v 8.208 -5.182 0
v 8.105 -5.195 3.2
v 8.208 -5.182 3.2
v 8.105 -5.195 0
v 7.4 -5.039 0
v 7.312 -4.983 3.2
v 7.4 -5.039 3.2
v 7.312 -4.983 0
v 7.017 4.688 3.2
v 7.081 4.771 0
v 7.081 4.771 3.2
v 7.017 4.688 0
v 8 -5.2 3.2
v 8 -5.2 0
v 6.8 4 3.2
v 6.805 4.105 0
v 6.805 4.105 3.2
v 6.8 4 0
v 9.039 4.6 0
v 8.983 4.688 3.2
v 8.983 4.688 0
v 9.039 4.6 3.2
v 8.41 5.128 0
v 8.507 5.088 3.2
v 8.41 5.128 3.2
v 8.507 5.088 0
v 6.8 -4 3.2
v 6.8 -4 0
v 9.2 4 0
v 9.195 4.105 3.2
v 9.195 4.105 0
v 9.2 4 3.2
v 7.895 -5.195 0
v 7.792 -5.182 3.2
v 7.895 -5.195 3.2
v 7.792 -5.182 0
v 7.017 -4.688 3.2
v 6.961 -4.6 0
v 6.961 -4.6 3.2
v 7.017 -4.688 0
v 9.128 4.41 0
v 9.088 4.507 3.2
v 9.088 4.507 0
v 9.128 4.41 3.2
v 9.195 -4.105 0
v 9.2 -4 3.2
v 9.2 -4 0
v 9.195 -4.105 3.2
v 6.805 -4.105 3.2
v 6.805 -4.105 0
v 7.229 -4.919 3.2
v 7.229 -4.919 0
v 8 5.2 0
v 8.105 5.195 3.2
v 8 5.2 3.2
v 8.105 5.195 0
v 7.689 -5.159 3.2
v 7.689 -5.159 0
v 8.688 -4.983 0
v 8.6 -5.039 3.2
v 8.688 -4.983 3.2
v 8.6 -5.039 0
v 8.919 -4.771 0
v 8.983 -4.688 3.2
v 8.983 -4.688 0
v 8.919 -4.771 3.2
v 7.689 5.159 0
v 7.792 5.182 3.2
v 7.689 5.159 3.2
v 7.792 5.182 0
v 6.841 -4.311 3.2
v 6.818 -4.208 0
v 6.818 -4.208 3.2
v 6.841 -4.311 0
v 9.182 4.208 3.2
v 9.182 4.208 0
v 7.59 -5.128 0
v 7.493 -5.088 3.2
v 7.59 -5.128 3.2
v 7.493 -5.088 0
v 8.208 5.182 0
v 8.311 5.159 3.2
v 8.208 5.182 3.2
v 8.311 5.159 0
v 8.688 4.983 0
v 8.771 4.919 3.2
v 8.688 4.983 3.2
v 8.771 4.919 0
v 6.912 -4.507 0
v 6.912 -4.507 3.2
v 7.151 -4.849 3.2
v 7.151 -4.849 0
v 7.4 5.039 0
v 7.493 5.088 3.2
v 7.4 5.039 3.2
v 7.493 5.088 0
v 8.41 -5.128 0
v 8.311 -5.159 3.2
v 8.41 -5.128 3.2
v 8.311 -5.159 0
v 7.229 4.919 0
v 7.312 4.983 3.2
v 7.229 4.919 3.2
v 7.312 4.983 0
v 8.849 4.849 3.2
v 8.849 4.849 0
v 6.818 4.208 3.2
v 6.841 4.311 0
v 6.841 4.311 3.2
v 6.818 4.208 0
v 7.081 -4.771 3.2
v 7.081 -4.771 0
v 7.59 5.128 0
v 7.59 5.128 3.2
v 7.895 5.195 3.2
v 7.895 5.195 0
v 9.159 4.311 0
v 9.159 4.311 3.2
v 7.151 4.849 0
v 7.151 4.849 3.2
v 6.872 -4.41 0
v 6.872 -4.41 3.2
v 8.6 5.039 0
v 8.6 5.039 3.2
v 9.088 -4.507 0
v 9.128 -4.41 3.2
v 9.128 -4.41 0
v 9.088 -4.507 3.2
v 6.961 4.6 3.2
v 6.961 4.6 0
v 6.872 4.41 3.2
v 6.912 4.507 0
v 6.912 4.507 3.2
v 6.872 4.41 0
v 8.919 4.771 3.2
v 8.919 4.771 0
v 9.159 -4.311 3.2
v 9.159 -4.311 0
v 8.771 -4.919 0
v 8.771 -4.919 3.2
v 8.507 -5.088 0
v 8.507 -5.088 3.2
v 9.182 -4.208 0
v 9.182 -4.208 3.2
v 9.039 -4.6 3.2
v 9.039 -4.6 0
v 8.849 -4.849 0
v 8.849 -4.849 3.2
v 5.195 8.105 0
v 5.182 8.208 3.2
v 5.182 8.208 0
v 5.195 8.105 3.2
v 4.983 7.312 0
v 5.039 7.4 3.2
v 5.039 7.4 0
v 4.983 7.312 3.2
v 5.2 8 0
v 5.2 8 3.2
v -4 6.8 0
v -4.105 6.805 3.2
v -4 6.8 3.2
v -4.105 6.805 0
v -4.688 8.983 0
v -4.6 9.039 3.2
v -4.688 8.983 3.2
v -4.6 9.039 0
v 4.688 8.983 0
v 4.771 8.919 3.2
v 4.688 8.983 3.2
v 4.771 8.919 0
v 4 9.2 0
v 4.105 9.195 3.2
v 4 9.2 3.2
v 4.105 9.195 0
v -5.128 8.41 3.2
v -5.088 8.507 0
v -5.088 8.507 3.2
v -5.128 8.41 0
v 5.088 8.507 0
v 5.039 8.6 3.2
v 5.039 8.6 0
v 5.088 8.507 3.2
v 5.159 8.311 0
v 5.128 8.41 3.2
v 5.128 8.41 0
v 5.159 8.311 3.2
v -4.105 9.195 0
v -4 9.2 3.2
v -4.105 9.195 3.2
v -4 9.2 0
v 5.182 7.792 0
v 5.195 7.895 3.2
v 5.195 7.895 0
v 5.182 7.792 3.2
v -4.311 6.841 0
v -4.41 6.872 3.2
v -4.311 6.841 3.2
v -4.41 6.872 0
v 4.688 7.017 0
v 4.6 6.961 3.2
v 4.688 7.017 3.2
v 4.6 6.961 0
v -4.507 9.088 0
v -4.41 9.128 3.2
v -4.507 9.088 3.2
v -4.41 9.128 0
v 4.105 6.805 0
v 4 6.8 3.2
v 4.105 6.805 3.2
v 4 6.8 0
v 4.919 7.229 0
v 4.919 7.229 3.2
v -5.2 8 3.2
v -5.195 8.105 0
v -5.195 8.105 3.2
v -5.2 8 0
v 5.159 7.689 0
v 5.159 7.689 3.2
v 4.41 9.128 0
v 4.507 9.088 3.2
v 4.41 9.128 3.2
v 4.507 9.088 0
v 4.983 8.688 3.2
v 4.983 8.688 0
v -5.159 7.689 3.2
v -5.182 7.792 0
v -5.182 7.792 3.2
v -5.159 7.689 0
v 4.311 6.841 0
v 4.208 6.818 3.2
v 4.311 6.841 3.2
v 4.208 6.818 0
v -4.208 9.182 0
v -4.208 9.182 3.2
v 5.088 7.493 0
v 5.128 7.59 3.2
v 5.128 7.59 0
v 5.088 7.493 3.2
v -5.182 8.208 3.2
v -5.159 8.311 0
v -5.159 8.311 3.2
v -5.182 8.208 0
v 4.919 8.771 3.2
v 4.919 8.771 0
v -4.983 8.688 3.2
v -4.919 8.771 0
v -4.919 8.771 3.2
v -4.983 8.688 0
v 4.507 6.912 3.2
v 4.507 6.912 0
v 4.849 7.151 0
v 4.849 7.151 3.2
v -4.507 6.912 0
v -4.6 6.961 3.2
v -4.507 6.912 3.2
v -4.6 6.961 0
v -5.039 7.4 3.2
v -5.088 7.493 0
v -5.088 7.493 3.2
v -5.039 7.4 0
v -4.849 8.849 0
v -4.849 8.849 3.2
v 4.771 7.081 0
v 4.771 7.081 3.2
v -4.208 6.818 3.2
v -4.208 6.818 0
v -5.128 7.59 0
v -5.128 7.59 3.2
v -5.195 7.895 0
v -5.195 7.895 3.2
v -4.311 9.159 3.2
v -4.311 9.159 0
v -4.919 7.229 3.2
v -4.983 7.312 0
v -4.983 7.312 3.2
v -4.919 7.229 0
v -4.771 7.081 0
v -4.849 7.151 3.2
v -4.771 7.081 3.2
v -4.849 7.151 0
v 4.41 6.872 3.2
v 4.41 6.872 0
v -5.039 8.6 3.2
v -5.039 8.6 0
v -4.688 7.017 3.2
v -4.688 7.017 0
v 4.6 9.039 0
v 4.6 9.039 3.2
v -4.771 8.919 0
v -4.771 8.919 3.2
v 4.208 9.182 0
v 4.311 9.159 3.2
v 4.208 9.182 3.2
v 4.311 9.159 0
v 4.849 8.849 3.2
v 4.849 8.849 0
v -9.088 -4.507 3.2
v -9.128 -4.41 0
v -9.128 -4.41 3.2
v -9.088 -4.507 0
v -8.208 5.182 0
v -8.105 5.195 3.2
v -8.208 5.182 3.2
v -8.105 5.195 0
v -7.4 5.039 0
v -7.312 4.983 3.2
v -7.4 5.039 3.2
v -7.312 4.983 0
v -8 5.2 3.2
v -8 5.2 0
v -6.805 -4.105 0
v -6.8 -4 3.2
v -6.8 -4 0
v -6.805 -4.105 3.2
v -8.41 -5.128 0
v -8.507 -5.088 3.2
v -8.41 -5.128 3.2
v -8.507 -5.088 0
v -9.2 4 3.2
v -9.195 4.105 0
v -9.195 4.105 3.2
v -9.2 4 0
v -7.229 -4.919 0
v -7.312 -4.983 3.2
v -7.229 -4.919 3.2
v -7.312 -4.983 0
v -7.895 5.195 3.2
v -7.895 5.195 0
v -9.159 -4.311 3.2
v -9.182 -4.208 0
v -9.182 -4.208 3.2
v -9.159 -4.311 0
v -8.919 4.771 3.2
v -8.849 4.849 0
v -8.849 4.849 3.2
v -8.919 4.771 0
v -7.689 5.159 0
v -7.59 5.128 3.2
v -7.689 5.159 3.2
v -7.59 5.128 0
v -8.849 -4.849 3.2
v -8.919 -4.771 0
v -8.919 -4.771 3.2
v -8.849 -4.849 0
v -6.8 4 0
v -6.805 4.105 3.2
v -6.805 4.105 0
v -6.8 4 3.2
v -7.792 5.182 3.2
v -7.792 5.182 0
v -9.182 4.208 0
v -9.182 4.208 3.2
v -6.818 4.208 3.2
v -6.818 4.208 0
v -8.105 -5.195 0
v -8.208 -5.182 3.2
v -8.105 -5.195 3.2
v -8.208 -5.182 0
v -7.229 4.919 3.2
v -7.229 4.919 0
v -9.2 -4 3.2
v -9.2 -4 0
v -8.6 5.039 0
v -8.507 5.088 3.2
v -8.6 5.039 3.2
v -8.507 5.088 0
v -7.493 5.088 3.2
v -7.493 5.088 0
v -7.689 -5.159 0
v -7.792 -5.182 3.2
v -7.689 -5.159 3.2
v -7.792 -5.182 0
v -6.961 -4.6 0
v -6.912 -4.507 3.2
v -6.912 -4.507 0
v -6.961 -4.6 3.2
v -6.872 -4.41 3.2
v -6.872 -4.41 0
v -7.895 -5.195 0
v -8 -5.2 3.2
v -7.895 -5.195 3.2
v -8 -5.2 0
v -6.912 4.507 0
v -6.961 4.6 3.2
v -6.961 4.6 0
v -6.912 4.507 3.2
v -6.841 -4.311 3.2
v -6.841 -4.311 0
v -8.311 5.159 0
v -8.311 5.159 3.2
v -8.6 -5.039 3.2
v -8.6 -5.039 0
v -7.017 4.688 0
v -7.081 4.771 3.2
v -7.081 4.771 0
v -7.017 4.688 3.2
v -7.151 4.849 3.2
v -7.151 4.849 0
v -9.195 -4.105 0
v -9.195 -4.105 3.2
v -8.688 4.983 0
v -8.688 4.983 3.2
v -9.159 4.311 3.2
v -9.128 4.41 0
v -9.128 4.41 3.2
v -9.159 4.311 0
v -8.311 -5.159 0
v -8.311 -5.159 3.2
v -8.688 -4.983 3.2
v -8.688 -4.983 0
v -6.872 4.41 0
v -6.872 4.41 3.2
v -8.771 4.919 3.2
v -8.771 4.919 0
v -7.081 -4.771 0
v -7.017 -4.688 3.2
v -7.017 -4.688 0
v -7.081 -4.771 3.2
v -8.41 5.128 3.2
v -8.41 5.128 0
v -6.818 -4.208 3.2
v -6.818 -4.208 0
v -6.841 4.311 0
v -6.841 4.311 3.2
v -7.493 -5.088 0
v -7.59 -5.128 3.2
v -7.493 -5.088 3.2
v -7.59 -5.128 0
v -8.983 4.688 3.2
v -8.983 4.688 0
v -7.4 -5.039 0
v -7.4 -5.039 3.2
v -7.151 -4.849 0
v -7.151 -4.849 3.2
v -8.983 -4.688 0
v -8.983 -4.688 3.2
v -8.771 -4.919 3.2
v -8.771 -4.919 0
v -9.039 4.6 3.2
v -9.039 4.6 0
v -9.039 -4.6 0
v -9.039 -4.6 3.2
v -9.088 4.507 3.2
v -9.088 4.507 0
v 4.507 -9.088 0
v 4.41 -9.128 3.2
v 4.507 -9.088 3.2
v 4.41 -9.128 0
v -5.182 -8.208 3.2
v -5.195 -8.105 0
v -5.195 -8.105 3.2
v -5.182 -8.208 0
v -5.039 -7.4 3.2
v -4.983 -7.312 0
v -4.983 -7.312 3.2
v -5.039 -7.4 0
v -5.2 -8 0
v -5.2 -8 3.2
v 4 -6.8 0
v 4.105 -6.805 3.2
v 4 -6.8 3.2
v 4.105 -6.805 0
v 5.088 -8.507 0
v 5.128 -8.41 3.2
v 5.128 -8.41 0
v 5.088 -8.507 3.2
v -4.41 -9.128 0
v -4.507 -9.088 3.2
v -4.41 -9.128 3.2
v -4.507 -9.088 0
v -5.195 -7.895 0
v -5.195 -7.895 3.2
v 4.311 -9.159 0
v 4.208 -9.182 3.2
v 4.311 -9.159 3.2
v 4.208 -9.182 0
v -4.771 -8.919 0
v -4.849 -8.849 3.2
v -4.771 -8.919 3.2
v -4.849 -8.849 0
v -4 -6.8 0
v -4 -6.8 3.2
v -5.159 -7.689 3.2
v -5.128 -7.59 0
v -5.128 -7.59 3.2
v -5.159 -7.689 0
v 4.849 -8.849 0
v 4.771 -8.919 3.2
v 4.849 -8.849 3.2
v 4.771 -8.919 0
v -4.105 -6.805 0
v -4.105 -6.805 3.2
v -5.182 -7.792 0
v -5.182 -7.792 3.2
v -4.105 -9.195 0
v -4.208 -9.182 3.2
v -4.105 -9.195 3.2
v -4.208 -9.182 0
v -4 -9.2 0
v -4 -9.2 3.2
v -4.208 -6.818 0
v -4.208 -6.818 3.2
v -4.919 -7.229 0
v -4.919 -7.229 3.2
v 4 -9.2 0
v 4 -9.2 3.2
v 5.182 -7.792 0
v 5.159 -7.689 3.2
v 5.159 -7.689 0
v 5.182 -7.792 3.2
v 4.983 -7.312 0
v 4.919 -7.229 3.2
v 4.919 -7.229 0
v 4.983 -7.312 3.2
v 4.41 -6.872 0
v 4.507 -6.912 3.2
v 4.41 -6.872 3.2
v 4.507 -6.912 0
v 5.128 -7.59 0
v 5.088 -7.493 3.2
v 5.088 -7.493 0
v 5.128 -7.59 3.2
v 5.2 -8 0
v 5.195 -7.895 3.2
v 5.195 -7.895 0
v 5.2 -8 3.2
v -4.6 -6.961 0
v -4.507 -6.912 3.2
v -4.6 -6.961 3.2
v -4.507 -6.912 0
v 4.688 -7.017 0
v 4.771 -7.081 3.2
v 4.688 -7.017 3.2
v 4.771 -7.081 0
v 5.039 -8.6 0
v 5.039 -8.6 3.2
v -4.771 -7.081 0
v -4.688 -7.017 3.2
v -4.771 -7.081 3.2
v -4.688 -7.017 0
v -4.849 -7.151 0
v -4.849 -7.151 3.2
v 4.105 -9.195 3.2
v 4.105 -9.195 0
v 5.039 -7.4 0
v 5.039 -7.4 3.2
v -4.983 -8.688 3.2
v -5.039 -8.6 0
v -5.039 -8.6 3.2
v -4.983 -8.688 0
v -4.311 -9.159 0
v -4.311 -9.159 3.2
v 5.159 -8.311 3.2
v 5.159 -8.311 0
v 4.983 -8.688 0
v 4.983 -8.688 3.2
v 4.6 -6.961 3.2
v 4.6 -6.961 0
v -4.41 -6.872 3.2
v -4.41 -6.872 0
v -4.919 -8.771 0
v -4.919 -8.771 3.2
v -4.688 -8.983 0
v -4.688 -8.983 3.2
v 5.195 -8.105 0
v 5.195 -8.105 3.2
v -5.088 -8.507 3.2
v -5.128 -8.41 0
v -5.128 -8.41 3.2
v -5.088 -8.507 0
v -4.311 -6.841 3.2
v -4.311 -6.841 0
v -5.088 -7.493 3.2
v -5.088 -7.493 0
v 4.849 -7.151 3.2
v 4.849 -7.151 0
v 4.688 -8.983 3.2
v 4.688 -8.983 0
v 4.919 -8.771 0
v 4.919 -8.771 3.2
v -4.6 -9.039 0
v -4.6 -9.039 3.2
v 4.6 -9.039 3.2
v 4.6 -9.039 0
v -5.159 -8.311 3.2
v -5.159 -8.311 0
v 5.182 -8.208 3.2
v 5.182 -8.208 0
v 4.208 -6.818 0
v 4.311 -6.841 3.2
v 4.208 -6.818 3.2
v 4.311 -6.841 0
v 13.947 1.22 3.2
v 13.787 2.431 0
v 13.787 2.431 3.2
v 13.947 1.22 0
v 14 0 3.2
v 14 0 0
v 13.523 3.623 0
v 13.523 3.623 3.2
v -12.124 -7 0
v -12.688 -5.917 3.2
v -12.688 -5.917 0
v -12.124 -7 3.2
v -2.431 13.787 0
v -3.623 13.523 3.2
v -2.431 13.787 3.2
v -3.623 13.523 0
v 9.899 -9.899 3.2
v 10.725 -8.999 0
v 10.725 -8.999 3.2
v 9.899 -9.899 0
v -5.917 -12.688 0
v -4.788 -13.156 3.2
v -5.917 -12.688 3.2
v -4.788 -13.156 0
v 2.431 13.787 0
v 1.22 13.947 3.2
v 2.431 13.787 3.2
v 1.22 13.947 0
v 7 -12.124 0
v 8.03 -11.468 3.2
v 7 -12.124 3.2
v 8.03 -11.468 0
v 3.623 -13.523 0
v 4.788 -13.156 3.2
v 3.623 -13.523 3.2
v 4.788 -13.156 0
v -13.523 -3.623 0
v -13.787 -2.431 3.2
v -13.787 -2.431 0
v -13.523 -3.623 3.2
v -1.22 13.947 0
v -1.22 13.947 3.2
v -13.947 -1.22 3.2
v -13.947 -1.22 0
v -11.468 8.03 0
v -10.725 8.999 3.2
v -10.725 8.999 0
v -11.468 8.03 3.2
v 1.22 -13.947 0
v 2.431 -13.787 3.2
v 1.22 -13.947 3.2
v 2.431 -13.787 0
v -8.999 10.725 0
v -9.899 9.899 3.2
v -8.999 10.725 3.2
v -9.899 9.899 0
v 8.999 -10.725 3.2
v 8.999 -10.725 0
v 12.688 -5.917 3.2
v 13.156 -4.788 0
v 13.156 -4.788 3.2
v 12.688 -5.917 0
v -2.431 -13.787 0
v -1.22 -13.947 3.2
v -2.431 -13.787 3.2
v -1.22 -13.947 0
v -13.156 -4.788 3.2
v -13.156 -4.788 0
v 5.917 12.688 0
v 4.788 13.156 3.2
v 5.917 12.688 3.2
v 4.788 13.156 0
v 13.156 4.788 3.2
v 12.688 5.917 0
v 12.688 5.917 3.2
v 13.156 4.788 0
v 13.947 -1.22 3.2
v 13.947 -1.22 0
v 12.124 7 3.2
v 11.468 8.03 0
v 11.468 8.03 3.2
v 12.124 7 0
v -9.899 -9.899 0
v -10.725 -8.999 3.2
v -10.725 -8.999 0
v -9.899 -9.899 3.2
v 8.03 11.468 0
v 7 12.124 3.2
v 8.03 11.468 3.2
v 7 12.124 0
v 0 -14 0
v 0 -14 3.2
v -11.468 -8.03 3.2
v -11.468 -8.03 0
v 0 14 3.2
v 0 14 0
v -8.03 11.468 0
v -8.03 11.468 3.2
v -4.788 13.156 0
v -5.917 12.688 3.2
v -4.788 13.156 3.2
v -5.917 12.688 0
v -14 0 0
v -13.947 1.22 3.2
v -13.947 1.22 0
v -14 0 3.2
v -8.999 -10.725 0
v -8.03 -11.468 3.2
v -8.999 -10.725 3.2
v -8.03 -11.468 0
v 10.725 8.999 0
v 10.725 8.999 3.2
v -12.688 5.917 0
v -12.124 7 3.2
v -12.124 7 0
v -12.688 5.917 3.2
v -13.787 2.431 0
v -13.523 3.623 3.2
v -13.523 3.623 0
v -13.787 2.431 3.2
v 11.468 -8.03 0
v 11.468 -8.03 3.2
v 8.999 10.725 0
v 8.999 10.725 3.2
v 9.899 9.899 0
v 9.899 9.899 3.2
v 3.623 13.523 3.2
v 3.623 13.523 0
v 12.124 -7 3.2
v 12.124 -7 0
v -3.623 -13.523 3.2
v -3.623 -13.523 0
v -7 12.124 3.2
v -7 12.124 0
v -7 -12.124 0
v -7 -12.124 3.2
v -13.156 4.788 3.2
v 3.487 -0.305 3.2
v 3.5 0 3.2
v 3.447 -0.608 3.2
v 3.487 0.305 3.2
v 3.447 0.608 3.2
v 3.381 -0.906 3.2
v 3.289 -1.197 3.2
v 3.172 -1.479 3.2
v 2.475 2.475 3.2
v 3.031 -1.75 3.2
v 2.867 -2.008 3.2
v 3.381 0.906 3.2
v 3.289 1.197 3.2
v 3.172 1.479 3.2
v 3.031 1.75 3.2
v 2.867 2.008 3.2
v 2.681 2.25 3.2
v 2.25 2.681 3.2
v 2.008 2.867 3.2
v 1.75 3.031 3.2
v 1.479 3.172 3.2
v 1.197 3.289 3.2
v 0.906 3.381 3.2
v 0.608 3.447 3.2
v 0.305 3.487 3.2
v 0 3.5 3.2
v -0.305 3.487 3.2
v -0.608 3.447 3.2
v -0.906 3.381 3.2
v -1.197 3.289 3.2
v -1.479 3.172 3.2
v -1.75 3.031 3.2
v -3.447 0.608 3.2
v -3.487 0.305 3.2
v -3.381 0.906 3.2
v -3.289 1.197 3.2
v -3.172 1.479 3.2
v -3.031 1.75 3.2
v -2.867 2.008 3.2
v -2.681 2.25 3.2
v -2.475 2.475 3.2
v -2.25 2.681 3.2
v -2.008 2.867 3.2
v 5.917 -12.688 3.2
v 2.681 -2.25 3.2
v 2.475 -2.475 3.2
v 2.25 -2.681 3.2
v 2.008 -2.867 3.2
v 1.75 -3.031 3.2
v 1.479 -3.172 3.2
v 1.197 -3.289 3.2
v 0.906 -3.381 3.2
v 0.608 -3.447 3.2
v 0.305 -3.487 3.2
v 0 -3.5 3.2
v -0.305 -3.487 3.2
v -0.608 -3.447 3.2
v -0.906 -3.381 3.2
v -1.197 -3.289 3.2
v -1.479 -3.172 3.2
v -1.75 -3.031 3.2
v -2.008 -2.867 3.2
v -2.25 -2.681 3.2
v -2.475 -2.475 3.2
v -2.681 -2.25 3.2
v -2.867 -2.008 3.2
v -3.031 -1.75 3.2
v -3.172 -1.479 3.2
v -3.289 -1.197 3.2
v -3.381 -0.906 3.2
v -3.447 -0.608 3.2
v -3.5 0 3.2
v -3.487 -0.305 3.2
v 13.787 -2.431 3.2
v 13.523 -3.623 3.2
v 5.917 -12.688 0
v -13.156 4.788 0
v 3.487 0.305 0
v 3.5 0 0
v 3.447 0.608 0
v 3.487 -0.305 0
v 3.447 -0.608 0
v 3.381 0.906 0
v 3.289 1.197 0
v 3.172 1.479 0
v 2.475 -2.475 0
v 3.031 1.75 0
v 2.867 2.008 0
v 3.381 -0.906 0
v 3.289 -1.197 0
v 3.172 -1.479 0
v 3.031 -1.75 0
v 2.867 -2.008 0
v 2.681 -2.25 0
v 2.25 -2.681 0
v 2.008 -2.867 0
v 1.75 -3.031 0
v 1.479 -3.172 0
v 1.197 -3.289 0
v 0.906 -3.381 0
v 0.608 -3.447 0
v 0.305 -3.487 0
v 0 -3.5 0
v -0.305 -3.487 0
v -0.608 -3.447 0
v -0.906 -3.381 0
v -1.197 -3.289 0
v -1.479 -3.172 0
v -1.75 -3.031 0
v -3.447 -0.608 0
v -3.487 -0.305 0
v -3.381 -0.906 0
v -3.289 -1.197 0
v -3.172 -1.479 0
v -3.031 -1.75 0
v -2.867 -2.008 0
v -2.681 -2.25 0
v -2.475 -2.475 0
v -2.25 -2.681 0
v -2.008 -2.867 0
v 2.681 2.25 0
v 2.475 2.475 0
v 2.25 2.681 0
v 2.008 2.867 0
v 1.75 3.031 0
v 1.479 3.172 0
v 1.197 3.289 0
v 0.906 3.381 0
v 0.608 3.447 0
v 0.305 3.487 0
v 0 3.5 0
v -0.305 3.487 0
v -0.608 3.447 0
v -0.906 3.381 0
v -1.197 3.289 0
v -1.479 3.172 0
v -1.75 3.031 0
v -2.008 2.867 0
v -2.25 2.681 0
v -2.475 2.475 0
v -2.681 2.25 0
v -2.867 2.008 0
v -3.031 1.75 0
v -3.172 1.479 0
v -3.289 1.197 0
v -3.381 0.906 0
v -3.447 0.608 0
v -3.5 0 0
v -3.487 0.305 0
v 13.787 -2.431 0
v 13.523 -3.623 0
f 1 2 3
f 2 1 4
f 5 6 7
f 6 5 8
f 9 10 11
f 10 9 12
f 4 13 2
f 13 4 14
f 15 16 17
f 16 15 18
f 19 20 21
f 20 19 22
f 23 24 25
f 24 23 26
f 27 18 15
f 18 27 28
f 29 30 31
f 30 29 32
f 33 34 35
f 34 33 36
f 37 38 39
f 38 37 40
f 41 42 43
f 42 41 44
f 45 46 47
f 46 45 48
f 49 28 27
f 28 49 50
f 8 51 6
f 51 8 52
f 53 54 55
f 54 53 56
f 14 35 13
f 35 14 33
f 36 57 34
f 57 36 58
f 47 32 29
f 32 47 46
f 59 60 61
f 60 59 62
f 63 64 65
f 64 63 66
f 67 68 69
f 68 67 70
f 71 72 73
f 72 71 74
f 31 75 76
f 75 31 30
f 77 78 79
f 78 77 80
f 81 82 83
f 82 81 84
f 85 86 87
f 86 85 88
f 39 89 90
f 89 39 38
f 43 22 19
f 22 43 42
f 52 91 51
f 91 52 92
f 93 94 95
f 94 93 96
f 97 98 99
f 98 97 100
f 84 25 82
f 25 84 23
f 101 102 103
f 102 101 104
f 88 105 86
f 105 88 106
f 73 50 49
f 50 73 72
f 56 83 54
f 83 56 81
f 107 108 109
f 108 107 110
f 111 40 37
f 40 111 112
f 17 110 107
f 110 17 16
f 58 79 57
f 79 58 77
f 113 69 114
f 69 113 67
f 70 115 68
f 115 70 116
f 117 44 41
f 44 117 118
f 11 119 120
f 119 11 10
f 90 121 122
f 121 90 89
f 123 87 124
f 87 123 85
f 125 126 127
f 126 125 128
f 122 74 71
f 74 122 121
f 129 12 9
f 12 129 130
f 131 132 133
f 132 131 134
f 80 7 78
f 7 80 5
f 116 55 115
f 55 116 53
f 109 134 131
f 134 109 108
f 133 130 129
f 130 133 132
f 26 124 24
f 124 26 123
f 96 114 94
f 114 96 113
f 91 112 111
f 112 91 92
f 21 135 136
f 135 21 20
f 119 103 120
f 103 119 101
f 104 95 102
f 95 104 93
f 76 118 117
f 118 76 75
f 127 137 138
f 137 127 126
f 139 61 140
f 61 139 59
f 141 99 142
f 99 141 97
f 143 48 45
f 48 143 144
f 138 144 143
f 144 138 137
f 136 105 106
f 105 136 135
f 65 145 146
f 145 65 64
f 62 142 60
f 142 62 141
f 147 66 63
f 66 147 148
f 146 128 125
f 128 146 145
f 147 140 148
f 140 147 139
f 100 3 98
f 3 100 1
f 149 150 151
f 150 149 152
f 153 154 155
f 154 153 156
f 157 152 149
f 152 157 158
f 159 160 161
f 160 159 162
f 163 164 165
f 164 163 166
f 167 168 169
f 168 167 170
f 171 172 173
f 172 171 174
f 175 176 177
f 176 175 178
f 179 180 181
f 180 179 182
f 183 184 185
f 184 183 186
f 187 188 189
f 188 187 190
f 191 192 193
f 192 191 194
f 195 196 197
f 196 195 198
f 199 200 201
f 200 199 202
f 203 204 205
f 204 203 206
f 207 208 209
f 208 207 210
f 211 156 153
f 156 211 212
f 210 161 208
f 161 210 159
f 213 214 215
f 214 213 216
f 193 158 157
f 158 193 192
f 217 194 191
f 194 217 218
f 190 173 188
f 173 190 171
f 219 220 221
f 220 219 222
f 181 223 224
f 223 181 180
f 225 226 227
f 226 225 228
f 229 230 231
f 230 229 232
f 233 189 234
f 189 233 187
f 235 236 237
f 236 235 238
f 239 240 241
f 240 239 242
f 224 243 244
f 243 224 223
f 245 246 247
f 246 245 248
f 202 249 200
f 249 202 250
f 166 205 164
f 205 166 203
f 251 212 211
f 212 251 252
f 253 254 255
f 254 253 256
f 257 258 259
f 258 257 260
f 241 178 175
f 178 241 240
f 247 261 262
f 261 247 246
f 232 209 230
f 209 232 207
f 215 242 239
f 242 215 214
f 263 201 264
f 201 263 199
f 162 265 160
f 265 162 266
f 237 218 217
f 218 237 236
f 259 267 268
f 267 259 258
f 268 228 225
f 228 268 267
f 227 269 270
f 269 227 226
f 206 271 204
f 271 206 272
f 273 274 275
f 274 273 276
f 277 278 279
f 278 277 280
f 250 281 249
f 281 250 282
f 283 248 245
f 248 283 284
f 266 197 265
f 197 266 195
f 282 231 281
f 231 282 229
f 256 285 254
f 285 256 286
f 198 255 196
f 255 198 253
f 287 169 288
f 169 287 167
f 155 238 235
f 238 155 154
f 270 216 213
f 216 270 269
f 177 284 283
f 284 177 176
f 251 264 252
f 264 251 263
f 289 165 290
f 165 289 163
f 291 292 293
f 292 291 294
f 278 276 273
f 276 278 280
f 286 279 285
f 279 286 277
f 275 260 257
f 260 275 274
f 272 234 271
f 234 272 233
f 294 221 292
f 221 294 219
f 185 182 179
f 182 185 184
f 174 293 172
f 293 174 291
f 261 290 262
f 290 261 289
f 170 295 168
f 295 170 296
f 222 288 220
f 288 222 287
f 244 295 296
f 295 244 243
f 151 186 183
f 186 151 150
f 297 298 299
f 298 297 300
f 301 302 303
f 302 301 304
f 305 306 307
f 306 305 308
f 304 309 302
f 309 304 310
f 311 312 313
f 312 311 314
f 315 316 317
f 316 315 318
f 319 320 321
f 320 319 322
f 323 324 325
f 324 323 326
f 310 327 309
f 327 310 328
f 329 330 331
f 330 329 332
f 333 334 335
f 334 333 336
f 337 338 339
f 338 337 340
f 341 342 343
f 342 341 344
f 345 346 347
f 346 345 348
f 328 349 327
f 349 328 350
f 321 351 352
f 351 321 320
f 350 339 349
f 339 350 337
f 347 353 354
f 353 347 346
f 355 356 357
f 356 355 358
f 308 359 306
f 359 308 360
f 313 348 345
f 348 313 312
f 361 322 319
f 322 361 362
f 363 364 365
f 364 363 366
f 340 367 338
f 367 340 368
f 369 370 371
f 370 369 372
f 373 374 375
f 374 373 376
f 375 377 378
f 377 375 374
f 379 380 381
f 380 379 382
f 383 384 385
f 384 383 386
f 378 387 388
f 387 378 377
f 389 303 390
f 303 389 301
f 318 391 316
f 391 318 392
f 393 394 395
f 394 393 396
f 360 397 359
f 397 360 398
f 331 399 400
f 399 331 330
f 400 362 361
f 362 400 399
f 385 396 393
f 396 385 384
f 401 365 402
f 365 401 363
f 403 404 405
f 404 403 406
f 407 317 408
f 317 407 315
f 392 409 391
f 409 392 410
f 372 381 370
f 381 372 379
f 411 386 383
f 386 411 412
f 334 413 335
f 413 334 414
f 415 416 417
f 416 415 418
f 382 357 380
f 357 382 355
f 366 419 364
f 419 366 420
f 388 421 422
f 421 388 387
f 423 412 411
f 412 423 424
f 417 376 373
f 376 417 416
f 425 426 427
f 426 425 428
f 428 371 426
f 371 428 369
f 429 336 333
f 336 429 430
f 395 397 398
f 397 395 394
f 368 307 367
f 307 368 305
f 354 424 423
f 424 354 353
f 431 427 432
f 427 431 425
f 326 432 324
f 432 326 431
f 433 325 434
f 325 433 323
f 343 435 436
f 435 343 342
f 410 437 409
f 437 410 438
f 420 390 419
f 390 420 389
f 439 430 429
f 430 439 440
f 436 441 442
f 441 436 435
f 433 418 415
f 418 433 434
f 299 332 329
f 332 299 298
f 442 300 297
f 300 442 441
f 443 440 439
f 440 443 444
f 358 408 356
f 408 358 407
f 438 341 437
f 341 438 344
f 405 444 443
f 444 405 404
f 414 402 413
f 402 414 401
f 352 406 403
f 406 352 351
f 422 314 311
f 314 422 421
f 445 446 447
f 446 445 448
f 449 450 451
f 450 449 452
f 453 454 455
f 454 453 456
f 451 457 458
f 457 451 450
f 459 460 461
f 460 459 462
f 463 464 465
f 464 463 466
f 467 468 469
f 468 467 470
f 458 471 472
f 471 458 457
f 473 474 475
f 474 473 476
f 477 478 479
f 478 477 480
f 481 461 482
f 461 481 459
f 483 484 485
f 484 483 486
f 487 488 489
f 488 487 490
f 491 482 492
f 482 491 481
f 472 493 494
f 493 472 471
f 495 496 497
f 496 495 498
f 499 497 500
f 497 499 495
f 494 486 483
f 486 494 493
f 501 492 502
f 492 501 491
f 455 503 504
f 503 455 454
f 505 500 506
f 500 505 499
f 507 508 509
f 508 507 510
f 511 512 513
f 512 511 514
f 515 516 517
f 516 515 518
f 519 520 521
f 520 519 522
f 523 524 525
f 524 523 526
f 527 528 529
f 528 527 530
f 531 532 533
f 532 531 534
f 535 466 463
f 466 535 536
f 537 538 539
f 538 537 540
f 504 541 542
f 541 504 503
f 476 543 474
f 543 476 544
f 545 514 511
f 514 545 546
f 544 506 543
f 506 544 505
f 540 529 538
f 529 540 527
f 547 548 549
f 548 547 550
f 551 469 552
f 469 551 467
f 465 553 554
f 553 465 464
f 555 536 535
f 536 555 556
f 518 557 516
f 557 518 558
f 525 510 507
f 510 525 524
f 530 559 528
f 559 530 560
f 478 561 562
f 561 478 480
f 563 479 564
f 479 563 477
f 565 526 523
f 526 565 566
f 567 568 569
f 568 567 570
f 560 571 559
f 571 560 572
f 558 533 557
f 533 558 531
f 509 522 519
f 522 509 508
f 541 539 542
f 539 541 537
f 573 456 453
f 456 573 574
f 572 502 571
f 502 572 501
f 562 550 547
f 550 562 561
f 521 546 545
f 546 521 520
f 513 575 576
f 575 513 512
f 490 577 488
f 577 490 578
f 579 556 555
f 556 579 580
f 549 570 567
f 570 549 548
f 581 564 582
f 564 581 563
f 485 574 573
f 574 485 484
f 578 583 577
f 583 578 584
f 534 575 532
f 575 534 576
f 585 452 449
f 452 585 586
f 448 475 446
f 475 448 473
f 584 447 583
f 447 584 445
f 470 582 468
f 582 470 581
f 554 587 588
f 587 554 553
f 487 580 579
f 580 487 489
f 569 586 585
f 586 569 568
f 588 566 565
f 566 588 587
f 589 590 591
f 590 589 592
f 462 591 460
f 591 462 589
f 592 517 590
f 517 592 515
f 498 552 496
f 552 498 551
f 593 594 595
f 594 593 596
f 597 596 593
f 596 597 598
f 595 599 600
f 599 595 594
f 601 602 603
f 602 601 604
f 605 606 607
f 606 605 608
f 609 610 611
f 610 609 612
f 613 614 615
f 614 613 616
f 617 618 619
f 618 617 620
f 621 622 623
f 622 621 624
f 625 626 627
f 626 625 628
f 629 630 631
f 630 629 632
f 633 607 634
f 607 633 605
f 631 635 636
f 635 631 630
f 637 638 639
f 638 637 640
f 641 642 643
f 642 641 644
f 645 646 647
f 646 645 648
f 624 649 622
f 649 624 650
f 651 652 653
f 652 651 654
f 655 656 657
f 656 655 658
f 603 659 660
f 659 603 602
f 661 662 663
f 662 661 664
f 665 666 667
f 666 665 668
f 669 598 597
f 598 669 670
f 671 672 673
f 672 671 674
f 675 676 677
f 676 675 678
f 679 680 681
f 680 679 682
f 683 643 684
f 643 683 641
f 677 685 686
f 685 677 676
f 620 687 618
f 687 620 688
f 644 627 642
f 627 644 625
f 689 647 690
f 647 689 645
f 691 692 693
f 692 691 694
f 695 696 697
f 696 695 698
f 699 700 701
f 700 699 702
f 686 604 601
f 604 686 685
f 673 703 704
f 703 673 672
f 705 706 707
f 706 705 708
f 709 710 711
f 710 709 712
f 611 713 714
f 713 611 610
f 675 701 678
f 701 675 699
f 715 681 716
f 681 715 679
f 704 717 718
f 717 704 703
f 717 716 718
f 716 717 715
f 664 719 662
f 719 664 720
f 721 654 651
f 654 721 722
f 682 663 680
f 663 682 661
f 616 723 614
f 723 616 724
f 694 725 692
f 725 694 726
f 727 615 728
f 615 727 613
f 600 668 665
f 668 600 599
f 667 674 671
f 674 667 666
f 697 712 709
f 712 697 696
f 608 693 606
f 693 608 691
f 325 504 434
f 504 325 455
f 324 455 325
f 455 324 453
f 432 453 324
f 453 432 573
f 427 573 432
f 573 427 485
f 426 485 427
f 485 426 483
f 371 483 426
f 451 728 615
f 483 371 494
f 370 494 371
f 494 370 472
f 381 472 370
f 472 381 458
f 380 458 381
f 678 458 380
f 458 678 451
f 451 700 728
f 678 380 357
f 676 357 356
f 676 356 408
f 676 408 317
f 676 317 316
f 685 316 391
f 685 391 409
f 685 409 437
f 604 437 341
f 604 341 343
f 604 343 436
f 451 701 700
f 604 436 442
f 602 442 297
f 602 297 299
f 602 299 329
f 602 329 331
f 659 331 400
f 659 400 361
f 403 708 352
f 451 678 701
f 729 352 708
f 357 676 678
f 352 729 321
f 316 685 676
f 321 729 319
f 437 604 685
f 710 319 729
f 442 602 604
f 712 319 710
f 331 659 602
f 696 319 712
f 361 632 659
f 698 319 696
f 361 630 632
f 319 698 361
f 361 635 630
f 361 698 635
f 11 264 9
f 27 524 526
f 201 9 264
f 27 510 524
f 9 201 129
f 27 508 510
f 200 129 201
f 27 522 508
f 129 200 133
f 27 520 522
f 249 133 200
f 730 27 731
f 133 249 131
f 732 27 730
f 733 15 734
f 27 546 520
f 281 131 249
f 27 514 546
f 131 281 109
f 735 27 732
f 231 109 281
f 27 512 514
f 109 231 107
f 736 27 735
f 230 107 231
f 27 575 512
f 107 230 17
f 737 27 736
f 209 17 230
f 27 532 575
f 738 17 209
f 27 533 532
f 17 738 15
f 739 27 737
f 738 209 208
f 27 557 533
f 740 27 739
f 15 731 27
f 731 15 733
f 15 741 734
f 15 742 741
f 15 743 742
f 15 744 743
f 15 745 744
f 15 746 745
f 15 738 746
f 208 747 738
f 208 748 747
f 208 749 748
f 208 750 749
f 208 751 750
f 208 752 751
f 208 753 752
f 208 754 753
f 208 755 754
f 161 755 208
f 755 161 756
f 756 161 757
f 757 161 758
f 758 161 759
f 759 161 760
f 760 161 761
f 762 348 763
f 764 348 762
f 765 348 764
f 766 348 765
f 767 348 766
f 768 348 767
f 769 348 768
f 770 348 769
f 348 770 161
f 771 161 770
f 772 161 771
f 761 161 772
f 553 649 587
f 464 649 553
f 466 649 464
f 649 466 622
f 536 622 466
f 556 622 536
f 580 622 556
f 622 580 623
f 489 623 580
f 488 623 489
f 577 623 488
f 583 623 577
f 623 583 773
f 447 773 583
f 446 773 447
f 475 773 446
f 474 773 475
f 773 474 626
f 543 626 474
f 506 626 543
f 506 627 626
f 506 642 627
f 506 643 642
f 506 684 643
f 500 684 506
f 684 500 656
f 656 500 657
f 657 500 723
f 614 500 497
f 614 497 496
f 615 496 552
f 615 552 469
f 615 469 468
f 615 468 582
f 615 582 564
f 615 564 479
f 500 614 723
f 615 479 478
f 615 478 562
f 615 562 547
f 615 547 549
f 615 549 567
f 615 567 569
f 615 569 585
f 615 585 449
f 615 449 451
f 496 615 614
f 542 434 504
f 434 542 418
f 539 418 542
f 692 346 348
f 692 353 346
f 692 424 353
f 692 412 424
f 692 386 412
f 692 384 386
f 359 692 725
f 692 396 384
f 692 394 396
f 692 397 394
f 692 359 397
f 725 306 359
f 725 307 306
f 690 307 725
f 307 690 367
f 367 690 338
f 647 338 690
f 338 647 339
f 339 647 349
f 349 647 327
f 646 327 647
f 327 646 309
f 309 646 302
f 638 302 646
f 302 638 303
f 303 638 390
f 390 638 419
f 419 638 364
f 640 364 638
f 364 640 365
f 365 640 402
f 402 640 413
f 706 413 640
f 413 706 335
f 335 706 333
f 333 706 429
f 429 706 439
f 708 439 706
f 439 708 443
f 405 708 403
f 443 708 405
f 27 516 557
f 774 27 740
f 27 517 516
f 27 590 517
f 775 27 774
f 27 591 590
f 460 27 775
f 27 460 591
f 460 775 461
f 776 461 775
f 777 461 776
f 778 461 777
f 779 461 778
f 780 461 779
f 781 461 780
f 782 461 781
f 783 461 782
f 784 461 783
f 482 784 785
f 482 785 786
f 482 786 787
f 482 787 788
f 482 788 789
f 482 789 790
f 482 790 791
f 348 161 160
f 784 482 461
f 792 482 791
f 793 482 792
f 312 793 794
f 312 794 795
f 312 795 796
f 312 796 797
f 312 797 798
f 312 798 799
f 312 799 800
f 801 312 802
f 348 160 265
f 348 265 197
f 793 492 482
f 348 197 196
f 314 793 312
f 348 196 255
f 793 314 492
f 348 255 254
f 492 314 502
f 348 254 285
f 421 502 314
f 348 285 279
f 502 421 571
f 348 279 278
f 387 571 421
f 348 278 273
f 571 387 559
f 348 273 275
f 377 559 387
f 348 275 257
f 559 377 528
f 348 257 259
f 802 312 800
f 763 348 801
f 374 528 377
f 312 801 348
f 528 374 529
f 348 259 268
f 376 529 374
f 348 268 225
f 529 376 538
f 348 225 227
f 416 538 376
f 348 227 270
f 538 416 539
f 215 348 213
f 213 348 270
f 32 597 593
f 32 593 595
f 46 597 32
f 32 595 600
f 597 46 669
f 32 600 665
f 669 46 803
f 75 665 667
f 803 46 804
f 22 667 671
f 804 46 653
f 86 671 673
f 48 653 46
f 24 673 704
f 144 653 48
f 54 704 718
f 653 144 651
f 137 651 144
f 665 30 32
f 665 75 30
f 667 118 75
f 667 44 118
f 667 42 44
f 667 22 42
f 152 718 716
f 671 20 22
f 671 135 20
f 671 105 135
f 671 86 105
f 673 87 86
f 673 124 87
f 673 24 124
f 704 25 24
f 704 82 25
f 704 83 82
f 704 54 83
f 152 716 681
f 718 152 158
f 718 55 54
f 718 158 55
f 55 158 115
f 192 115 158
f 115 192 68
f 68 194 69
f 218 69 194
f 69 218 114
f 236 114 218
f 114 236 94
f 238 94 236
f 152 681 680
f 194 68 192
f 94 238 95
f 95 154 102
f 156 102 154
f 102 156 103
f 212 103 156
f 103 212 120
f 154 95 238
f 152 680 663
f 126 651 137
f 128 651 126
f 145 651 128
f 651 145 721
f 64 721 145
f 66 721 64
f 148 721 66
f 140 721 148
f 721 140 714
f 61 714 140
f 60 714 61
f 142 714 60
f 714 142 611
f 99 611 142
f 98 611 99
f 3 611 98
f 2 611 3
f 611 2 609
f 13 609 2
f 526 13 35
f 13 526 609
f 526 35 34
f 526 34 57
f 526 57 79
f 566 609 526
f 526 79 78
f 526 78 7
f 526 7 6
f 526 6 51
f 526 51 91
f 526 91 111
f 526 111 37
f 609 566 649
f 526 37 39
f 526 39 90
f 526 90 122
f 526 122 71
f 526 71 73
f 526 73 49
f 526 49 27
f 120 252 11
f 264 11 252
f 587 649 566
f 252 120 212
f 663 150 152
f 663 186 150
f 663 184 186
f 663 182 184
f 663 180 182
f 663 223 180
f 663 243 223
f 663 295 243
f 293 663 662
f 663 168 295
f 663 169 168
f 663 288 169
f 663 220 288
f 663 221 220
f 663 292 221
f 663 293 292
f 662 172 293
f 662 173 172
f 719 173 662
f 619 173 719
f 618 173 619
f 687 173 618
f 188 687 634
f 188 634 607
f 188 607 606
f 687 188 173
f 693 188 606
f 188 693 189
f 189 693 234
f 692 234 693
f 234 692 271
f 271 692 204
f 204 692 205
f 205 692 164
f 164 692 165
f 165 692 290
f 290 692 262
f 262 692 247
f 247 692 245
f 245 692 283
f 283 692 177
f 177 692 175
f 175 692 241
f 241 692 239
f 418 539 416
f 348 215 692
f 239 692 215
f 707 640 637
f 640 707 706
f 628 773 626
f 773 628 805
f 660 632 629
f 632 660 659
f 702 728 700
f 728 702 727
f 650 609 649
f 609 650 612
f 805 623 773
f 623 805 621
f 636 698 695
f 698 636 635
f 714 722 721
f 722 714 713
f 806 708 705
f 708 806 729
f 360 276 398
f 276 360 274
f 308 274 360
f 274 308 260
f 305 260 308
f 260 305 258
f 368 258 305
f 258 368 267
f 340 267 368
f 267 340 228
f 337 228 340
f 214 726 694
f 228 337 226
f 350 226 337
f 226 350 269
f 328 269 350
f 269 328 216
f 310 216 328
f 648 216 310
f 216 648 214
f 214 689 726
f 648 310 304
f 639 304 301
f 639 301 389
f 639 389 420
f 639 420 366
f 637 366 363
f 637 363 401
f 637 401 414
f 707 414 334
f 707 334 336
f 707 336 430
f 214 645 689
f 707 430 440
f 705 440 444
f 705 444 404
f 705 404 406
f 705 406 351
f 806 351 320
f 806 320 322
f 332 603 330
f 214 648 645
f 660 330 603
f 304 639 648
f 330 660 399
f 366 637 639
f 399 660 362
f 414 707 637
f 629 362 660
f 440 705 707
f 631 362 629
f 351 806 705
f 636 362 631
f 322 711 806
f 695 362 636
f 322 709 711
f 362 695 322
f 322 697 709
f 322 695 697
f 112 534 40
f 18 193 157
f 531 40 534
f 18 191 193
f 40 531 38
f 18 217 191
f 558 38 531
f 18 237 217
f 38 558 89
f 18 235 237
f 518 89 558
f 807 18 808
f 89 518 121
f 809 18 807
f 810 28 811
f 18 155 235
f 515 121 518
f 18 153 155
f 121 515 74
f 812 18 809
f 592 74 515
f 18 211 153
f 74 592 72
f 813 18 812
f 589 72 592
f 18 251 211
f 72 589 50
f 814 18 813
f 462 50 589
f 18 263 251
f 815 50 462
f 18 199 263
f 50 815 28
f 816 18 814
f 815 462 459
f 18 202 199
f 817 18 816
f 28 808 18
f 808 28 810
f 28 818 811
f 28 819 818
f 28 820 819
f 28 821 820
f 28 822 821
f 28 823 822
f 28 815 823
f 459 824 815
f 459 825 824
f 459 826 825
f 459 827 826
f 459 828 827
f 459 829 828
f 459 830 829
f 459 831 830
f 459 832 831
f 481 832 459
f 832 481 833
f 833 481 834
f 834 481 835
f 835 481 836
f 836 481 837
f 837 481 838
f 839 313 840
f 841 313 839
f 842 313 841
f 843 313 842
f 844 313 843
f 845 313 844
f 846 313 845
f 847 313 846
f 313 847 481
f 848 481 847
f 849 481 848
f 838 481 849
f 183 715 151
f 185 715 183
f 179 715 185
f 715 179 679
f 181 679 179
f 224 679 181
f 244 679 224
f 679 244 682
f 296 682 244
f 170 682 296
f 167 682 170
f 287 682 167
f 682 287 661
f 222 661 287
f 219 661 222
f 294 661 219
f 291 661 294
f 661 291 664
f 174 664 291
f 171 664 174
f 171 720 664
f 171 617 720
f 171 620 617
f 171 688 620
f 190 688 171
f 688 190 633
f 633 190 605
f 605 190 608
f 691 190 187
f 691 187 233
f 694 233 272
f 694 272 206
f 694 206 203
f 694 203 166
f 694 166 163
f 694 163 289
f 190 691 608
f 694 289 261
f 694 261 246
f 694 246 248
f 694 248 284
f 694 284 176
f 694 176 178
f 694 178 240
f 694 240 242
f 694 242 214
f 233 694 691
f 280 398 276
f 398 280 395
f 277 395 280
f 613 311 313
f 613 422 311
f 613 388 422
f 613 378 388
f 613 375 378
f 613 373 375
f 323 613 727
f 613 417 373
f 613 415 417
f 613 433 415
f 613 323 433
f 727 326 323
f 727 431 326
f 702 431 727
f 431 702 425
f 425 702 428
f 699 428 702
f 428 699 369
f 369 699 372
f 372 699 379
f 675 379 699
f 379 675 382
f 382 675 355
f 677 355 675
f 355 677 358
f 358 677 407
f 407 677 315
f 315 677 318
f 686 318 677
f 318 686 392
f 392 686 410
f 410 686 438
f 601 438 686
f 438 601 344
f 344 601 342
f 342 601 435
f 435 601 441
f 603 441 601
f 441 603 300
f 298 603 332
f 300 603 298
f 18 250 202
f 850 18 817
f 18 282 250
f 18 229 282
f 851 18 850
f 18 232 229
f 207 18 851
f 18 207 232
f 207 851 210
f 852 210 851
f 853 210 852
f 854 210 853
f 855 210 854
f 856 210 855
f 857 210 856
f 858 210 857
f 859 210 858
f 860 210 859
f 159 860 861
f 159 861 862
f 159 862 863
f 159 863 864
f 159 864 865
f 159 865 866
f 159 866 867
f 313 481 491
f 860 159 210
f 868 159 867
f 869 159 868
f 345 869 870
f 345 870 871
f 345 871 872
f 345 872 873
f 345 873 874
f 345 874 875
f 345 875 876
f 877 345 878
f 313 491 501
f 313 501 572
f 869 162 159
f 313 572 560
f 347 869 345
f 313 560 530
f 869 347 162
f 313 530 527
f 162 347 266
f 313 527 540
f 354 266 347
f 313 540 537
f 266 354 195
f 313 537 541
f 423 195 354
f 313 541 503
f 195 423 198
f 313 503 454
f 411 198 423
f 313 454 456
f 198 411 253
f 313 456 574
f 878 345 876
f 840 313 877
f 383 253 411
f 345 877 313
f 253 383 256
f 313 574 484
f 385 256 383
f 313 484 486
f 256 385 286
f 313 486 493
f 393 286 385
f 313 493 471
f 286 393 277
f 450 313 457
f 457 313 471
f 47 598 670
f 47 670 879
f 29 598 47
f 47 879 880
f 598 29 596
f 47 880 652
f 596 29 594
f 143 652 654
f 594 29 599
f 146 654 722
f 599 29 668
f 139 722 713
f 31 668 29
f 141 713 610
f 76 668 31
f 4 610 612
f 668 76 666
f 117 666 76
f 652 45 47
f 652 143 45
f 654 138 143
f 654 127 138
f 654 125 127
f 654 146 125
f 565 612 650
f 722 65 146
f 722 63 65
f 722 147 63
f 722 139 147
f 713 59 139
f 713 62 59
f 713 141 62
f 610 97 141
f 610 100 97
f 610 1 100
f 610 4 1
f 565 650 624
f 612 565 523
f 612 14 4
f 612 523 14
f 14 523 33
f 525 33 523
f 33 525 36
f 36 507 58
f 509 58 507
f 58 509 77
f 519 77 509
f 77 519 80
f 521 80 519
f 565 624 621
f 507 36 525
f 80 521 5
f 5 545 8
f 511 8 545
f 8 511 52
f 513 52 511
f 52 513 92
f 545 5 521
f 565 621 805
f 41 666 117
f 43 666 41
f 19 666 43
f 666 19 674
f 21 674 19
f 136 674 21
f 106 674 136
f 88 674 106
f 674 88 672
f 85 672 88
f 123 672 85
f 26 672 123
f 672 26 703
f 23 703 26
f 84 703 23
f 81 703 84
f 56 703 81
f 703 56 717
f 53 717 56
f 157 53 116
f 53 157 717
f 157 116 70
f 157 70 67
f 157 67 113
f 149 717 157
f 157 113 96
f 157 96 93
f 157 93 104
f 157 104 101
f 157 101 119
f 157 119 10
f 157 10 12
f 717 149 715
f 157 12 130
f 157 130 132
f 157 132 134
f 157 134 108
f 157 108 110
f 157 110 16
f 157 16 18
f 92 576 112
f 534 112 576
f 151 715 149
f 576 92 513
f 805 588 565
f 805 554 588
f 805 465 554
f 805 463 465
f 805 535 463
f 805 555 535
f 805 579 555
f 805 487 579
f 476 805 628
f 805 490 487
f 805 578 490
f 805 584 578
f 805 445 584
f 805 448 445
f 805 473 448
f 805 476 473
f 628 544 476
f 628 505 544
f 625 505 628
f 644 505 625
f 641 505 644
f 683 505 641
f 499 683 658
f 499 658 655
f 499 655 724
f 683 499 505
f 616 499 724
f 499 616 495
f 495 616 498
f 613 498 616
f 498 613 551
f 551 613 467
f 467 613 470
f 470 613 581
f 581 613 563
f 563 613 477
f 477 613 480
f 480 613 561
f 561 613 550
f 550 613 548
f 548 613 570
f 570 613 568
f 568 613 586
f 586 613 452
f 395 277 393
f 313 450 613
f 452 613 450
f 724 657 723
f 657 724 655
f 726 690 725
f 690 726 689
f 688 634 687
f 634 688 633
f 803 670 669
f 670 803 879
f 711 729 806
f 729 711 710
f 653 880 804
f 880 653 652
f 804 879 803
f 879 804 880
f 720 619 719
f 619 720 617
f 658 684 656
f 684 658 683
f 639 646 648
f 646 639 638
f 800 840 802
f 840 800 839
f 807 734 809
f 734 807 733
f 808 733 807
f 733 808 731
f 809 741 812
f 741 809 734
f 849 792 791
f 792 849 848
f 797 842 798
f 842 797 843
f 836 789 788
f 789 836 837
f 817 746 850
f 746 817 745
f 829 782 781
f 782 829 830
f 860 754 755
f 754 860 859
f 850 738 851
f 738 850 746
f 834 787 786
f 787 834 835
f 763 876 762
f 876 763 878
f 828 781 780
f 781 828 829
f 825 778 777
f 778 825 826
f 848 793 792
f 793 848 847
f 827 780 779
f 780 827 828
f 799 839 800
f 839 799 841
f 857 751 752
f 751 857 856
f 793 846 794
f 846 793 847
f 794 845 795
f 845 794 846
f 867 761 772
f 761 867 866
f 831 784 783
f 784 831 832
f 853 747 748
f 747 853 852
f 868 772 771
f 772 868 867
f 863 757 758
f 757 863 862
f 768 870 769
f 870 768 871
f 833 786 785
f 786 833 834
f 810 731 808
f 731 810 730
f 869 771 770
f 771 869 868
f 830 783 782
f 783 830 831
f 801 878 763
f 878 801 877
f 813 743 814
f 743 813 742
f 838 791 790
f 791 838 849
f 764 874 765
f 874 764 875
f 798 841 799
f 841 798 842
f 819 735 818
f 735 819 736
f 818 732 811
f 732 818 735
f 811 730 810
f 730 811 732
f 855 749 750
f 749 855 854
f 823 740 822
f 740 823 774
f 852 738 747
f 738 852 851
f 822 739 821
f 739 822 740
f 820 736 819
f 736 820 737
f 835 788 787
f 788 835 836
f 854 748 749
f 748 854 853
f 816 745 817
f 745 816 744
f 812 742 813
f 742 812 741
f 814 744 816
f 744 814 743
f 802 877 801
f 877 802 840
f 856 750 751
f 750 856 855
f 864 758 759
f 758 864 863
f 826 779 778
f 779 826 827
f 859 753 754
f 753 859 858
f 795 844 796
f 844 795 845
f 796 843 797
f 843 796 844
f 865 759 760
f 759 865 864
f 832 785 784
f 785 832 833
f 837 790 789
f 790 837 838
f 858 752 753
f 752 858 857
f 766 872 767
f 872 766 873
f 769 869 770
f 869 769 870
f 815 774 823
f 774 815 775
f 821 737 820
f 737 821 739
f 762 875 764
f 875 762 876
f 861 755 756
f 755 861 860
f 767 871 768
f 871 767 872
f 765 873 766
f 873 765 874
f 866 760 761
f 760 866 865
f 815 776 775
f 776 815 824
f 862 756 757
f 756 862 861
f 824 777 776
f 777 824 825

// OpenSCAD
// file: woli_config.scad
// ============================================================
// WOLI V1.1 AUDITED FINAL — MASTER PARAMETERS
// Units: mm
// ============================================================

$fn = 72;

// ---------- GLOBAL ----------
fit_clearance = 0.40;
wall = 3.0;
floor_t = 5.0;
cover_t = 2.8;
shell_r = 10.0;

m3_clear = 3.4;
m3_pilot_d = 2.8;
m3_pilot_depth = 4.2;

tie_slot_w = 3.8;
tie_slot_l = 18;

// ---------- BODY ----------
body_w = 170;
body_l = 90;
chassis_h = 31;
top_h = 34;

top_upper_w = 162;
top_upper_l = 80;
top_upper_r = 9;

// ---------- N20 DRIVE ----------
wheel_d = 43;
wheel_w = 17.5;

n20_x = 12;
n20_y = 33;
n20_z = 10;

n20_bracket_x = 25;
n20_bracket_y = 8.5;
n20_bracket_z = 11.5;
n20_bracket_hole_cc = 17;      // approx; slots absorb error

wheel_axis_ground_z = wheel_d/2; // reference only; actual chassis ground plane requires hardware check
wheel_opening_l = 25;            // side wheel cutout depth (Y), mm
motor_y = -body_l/2 + body_l/3;  // wheel center: 1/3 body depth in from front (-Y)
motor_slot_len = 8;
motor_bracket_zone_x = body_w/2 - 18;

// ---------- BALL CASTER ----------
caster_w = 22;
caster_l = 17;
caster_h = 15;
caster_ball_d_visual_ref = 11.5; // photo-only reference; not used for fit
caster_dock_y = body_l/2 - 21;

caster_body_clear = 0.7;
caster_retainer_t = 3.0;
caster_retainer_screw_cc = 27;

caster_mount_x = 15;
caster_mount_y = 12;
caster_floor_open = 18.5;

// ---------- MAIN PCB ----------
pcb_w = 50;
pcb_l = 70;
pcb_stack_h = 15;

pcb_tray_w = 56;
pcb_tray_l = 76;
pcb_mount_cc_x = 44;
pcb_mount_cc_y = 64;

// ---------- MG90S ----------
servo_a = 32.4;
servo_b = 32.5;
servo_c = 12;
servo_fit = 0.7;

// ---------- LIMIT SWITCH ----------
limit_w = 21;
limit_l = 23;
limit_h = 6;

// ---------- VL53L0X ----------
tof_w = 10.7;
tof_l = 25;
tof_h = 11.5;
tof_rail_clear = 0.7;

tof_bezel_w = 34;
tof_bezel_h = 19;

// ---------- PHONE HOLDER / NECK ----------
phone_ball_d = 18.0;            // physical socket fit still required
neck_h = 30;
neck_base_w = 54;
neck_base_l = 42;
neck_base_h = 5;
neck_hole_x = 38;
neck_hole_y = 26;

neck_recess_w = 62;
neck_recess_l = 50;
neck_recess_d = 1.2;

neck_pilot_d = 2.8;
neck_pilot_depth = 7.0;

// reference phone clearance envelope only
phone_ref_w = 165;
phone_ref_h = 82;
phone_ref_t = 12;

// ---------- KLIFE PD-Q2 BATTERY ----------
battery_w = 68;
battery_l = 143;
battery_h = 11;
battery_mass_g = 205;

battery_fit_clear = 0.8;
battery_tray_w = 84;
battery_tray_l = 146;
battery_tray_t = 2.4;
battery_rail_t = 2.5;
battery_rail_h = 5.5;
battery_center_y = -18;

battery_tray_mount_x = 39;
battery_tray_mount_y = 55;

// ---------- UPPER ELECTRONICS DECK ----------
bridge_w = 122;
bridge_l = 94;
bridge_t = 3.0;
bridge_leg_h = 20;
bridge_leg_x = 56;
bridge_leg_y = 36;

module_boss_h = 4.5;
module_boss_d = 8.0;
module_pilot_d = 2.8;

pcb_deck_cx = -25;
pcb_deck_cy = 0;

tb_deck_cx = 34;
tb_deck_cy = 17;

usbc_deck_cx = 36;
usbc_deck_cy = -24;

// ---------- TB6612FNG HW-166 ----------
tb6612_w = 26;
tb6612_l = 26;
tb6612_clear = 0.6;

// total installed height is intentionally not hard-coded

// ---------- USB-C BREAKOUT ----------
usbc_board_w = 12;
usbc_board_l = 15;
usbc_connector_h = 4.2;
usbc_clear = 0.6;

// ---------- TOP COVER INTERFACE ----------
cover_skirt_depth = 4.0;
cover_skirt_clear = 0.8;
cover_skirt_t = 2.5;

cover_side_screw_y = 55 * body_l / 190;
cover_side_screw_z = -2.5;

rear_service_w = 42;
rear_service_h = 14;
rear_hatch_screw_x = 19;
rear_hatch_center_z = 10;

// ---------- CABLE MANAGEMENT ----------
cable_bridge_w = 24;
cable_bridge_l = 14;
cable_bridge_h = 8;
cable_bridge_channel = 8;

// ---------- SERVO LOCK FRAMEWORK ----------
lock_angle_deg = 90;
unlock_angle_deg = 10;

lock_plate_d = 28;
lock_arm_w = 10;
lock_arm_t = 4.0;
lock_reach = 22;
lock_tip_d = 10;

horn_center_clear_d = 7.0;
horn_slot_d = 2.4;              // physical stock-horn check required
horn_slot_len = 8.0;
horn_slot_radius = 8.0;

lock_pad_t = 2.0;
lock_pad_d = 11.0;
// file: woli_lib.scad
include <woli_config.scad>;

module rr2d(w,l,r){
    offset(r=r) square([w-2*r,l-2*r], center=true);
}

module rplate(w,l,h,r){
    linear_extrude(height=h) rr2d(w,l,r);
}

module rshell(w,l,h,r,t,bottom){
    difference(){
        rplate(w,l,h,r);
        translate([0,0,bottom])
            rplate(w-2*t,l-2*t,h,r-t);
    }
}

module slot2d(len,d){
    hull(){
        translate([-len/2,0]) circle(d=d);
        translate([ len/2,0]) circle(d=d);
    }
}

module slot3d(len,d,h){
    linear_extrude(height=h) slot2d(len,d);
}

module tie_slot(h=5){
    rplate(tie_slot_w,tie_slot_l,h,1.2);
}

module body_screw_pattern(h=20){
    for(x=[-screw_x,screw_x])
        for(y=[-screw_y,screw_y])
            translate([x,y,-1])
                cylinder(h=h,d=m3_clear);
}

module body_bosses(h=20){
    for(x=[-screw_x,screw_x])
        for(y=[-screw_y,screw_y])
            translate([x,y,0])
                cylinder(h=h,d=m3_boss_d);
}


// Closed-top shell for removable upper cover.
// Leaves the underside open and preserves a roof thickness.
module top_shell(w,l,h,r,t){
    difference(){
        rplate(w,l,h,r);
        translate([0,0,-0.1])
            rplate(w-2*t,l-2*t,h-t+0.1,r-t);
    }
}


// Tapered rounded solid built from two rounded plates.
// Useful for product-like enclosure shoulders.
module tapered_rounded_solid(w0,l0,w1,l1,h,r0,r1){
    hull(){
        rplate(w0,l0,0.8,r0);
        translate([0,0,h-0.8])
            rplate(w1,l1,0.8,r1);
    }
}

// Open-bottom tapered cover with closed roof.
module tapered_top_shell(w0,l0,w1,l1,h,r0,r1,t){
    difference(){
        tapered_rounded_solid(w0,l0,w1,l1,h,r0,r1);
        translate([0,0,-0.1])
            tapered_rounded_solid(
                w0-2*t,l0-2*t,
                w1-2*t,l1-2*t,
                h-t+0.1,
                max(r0-t,1),max(r1-t,1)
            );
    }
}
// main file
include <woli_lib.scad>;

// ============================================================
// 22 UNIVERSAL SERVO-HORN ADAPTER V0.7
//
// PURPOSE
// - sits on TOP of the stock MG90S servo horn
// - avoids assuming spline tooth count / spline diameter
// - uses radial slots to accommodate different stock-horn hole locations
//
// IMPORTANT
// - horn_slot_d = 2.4mm is DESIGN/PENDING.
// - hardware team must confirm actual horn screw diameter.
// ============================================================

adapter_t = 3.2;

difference(){
    cylinder(h=adapter_t,d=lock_plate_d);

    // do not interfere with stock horn center screw
    translate([0,0,-0.1])
        cylinder(h=adapter_t+0.3,d=horn_center_clear_d);

    // four radial mounting slots
    for(a=[0,90,180,270])
        rotate([0,0,a])
            translate([horn_slot_radius,0,-0.1])
                rotate([0,0,90])
                    slot3d(horn_slot_len,horn_slot_d,adapter_t+0.3);
}
